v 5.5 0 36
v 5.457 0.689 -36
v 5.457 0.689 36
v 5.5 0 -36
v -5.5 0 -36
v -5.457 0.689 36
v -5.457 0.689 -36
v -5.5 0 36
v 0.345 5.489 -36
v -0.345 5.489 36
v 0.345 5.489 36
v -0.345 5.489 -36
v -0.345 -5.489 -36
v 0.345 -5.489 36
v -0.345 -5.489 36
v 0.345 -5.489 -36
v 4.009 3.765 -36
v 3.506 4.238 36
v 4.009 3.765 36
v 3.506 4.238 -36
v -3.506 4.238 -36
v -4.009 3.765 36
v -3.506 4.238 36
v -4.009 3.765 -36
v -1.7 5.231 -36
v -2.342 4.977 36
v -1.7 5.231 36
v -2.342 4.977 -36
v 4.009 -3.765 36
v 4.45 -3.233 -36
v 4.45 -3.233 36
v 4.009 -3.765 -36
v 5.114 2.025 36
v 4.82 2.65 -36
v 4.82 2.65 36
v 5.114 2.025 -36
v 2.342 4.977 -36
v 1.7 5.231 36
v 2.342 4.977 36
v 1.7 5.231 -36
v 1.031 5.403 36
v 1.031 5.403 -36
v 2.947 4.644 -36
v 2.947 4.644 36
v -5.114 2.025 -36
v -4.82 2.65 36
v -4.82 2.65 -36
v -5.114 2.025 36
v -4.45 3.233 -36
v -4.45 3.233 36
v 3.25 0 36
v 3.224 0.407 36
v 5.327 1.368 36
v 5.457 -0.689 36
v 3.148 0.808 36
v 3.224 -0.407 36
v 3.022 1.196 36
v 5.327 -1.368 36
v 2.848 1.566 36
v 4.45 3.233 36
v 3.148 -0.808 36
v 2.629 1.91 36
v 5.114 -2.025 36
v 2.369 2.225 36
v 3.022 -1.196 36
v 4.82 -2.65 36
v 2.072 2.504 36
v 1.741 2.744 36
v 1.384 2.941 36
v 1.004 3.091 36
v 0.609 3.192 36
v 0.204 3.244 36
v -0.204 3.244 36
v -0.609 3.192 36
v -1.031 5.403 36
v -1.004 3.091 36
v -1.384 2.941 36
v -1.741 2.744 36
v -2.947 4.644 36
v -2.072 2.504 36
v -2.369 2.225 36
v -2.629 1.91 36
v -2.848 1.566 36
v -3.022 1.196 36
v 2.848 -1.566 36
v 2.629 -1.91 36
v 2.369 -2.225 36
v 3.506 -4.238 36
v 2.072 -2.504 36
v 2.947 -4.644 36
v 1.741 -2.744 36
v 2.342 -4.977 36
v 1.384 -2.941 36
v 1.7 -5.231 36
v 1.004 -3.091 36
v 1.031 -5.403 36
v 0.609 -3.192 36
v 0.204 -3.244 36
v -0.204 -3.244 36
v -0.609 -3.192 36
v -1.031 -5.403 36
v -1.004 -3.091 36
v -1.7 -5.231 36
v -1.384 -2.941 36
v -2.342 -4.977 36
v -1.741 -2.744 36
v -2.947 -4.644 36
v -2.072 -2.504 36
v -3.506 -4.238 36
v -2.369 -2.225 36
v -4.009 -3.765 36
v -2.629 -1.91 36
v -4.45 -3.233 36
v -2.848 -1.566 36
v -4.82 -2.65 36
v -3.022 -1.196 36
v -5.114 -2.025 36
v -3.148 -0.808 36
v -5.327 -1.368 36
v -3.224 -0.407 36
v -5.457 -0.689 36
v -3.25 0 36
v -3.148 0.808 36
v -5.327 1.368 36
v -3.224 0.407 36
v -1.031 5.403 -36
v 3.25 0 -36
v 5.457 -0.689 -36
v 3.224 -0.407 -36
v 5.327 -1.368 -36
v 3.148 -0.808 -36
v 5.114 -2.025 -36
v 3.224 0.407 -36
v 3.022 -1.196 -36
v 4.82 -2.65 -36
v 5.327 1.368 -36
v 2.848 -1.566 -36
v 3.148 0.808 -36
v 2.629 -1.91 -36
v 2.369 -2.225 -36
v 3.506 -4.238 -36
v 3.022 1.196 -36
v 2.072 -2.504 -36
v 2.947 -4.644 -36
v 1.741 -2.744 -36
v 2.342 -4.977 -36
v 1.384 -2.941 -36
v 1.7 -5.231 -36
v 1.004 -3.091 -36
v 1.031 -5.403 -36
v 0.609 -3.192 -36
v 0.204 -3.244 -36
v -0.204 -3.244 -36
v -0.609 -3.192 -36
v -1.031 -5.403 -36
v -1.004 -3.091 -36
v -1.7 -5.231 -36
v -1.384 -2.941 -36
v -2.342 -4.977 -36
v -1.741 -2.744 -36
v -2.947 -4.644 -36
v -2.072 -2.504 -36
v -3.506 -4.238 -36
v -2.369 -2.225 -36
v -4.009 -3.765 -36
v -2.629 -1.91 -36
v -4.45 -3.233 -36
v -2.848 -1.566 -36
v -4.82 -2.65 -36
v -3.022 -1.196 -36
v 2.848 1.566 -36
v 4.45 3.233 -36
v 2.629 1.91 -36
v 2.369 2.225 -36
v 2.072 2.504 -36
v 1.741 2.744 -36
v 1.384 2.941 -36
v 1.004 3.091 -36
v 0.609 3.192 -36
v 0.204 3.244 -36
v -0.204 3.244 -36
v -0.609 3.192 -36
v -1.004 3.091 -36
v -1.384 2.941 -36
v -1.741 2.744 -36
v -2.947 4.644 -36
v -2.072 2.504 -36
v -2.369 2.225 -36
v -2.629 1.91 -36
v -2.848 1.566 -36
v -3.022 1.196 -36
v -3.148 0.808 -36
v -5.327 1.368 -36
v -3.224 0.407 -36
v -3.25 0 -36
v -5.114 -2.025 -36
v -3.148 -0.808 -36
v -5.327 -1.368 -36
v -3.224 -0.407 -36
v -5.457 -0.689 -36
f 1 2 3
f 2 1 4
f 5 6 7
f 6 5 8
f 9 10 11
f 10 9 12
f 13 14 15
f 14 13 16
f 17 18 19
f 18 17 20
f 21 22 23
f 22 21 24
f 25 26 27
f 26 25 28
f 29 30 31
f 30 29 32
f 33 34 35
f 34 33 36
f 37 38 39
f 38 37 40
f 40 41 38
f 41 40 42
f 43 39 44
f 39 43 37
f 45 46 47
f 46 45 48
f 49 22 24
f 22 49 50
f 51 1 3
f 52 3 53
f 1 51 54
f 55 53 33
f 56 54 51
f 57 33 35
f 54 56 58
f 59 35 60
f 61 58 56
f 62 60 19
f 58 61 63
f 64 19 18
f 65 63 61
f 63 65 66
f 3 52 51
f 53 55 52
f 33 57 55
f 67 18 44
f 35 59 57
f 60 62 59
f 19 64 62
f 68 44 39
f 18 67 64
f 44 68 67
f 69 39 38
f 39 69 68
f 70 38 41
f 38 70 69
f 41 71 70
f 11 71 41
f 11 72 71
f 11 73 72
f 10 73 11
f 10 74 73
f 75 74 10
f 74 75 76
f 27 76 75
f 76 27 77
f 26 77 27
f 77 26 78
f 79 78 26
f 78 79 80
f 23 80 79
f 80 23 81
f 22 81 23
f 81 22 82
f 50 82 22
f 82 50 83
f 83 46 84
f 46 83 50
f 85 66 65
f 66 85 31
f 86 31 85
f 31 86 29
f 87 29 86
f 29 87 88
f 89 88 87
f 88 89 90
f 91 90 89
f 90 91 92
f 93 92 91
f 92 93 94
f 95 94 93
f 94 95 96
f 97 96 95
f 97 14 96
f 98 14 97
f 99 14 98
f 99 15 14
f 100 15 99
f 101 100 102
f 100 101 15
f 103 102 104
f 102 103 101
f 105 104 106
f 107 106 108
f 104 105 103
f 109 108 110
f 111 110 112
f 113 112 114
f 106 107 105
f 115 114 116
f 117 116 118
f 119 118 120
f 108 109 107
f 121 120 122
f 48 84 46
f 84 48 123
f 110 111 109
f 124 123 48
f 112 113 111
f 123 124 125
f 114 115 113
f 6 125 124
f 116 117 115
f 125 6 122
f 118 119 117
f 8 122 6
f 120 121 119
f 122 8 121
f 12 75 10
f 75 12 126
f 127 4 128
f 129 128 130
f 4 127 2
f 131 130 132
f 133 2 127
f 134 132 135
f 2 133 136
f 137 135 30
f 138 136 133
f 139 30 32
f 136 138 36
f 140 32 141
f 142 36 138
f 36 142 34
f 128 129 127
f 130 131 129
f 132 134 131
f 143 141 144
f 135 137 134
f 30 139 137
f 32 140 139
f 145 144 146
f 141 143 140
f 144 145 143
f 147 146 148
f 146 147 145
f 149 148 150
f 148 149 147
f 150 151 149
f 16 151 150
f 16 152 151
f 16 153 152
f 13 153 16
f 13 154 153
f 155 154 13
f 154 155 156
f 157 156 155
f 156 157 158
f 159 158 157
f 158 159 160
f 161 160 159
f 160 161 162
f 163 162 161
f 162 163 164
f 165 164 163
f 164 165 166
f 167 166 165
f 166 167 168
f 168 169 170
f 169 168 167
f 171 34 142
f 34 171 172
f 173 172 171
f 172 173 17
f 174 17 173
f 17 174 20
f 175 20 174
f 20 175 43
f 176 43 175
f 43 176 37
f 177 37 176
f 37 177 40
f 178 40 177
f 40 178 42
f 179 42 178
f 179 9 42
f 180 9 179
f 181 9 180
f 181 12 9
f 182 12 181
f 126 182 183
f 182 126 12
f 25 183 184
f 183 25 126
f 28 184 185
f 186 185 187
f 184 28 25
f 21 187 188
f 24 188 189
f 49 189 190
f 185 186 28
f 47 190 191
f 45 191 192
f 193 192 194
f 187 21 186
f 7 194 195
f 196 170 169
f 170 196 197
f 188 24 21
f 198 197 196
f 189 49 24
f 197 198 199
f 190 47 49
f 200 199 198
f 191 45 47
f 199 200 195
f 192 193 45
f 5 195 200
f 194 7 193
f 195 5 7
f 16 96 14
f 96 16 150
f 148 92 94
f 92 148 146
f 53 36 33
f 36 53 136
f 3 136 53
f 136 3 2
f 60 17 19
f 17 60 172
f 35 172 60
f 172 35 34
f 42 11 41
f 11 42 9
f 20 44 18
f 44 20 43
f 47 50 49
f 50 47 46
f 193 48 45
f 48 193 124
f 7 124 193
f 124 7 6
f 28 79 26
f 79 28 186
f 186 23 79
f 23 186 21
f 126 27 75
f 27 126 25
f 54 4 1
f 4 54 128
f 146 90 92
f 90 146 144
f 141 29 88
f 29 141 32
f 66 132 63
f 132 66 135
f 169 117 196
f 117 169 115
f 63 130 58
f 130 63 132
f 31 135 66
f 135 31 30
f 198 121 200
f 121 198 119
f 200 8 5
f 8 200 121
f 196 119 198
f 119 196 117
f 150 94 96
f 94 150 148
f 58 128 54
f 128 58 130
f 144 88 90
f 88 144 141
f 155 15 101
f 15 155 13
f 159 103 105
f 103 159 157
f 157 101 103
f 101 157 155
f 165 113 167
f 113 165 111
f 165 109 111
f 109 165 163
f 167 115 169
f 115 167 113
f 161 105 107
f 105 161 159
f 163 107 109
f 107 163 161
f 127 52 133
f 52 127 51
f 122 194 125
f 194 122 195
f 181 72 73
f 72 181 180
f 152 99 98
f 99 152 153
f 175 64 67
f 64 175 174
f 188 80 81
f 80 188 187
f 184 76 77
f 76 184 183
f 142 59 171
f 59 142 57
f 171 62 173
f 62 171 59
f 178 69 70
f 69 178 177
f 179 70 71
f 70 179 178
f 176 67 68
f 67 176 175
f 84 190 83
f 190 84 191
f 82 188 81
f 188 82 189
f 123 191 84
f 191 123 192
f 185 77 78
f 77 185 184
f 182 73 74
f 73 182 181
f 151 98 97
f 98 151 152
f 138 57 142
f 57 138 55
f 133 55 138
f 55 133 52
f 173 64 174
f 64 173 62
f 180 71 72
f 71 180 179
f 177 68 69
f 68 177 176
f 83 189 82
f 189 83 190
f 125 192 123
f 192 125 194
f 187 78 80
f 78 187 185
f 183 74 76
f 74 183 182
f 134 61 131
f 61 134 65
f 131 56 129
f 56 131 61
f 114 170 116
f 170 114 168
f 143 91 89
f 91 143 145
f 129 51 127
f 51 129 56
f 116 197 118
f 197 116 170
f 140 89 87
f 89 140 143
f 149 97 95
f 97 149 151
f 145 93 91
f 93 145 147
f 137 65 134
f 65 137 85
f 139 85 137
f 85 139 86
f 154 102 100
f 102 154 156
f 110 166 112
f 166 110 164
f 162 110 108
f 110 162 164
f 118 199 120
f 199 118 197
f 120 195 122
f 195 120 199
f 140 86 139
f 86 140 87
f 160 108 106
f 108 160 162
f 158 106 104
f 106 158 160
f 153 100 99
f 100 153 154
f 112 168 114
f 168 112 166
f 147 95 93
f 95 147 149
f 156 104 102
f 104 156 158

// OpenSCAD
$fn = 50;


difference() {
	union() {
		translate(v = [0, 0, -36.0000000000]) {
			cylinder(h = 72, r = 5.5000000000);
		}
	}
	union() {
		translate(v = [0, 0, -100.0000000000]) {
			cylinder(h = 200, r = 3.2500000000);
		}
	}
}
